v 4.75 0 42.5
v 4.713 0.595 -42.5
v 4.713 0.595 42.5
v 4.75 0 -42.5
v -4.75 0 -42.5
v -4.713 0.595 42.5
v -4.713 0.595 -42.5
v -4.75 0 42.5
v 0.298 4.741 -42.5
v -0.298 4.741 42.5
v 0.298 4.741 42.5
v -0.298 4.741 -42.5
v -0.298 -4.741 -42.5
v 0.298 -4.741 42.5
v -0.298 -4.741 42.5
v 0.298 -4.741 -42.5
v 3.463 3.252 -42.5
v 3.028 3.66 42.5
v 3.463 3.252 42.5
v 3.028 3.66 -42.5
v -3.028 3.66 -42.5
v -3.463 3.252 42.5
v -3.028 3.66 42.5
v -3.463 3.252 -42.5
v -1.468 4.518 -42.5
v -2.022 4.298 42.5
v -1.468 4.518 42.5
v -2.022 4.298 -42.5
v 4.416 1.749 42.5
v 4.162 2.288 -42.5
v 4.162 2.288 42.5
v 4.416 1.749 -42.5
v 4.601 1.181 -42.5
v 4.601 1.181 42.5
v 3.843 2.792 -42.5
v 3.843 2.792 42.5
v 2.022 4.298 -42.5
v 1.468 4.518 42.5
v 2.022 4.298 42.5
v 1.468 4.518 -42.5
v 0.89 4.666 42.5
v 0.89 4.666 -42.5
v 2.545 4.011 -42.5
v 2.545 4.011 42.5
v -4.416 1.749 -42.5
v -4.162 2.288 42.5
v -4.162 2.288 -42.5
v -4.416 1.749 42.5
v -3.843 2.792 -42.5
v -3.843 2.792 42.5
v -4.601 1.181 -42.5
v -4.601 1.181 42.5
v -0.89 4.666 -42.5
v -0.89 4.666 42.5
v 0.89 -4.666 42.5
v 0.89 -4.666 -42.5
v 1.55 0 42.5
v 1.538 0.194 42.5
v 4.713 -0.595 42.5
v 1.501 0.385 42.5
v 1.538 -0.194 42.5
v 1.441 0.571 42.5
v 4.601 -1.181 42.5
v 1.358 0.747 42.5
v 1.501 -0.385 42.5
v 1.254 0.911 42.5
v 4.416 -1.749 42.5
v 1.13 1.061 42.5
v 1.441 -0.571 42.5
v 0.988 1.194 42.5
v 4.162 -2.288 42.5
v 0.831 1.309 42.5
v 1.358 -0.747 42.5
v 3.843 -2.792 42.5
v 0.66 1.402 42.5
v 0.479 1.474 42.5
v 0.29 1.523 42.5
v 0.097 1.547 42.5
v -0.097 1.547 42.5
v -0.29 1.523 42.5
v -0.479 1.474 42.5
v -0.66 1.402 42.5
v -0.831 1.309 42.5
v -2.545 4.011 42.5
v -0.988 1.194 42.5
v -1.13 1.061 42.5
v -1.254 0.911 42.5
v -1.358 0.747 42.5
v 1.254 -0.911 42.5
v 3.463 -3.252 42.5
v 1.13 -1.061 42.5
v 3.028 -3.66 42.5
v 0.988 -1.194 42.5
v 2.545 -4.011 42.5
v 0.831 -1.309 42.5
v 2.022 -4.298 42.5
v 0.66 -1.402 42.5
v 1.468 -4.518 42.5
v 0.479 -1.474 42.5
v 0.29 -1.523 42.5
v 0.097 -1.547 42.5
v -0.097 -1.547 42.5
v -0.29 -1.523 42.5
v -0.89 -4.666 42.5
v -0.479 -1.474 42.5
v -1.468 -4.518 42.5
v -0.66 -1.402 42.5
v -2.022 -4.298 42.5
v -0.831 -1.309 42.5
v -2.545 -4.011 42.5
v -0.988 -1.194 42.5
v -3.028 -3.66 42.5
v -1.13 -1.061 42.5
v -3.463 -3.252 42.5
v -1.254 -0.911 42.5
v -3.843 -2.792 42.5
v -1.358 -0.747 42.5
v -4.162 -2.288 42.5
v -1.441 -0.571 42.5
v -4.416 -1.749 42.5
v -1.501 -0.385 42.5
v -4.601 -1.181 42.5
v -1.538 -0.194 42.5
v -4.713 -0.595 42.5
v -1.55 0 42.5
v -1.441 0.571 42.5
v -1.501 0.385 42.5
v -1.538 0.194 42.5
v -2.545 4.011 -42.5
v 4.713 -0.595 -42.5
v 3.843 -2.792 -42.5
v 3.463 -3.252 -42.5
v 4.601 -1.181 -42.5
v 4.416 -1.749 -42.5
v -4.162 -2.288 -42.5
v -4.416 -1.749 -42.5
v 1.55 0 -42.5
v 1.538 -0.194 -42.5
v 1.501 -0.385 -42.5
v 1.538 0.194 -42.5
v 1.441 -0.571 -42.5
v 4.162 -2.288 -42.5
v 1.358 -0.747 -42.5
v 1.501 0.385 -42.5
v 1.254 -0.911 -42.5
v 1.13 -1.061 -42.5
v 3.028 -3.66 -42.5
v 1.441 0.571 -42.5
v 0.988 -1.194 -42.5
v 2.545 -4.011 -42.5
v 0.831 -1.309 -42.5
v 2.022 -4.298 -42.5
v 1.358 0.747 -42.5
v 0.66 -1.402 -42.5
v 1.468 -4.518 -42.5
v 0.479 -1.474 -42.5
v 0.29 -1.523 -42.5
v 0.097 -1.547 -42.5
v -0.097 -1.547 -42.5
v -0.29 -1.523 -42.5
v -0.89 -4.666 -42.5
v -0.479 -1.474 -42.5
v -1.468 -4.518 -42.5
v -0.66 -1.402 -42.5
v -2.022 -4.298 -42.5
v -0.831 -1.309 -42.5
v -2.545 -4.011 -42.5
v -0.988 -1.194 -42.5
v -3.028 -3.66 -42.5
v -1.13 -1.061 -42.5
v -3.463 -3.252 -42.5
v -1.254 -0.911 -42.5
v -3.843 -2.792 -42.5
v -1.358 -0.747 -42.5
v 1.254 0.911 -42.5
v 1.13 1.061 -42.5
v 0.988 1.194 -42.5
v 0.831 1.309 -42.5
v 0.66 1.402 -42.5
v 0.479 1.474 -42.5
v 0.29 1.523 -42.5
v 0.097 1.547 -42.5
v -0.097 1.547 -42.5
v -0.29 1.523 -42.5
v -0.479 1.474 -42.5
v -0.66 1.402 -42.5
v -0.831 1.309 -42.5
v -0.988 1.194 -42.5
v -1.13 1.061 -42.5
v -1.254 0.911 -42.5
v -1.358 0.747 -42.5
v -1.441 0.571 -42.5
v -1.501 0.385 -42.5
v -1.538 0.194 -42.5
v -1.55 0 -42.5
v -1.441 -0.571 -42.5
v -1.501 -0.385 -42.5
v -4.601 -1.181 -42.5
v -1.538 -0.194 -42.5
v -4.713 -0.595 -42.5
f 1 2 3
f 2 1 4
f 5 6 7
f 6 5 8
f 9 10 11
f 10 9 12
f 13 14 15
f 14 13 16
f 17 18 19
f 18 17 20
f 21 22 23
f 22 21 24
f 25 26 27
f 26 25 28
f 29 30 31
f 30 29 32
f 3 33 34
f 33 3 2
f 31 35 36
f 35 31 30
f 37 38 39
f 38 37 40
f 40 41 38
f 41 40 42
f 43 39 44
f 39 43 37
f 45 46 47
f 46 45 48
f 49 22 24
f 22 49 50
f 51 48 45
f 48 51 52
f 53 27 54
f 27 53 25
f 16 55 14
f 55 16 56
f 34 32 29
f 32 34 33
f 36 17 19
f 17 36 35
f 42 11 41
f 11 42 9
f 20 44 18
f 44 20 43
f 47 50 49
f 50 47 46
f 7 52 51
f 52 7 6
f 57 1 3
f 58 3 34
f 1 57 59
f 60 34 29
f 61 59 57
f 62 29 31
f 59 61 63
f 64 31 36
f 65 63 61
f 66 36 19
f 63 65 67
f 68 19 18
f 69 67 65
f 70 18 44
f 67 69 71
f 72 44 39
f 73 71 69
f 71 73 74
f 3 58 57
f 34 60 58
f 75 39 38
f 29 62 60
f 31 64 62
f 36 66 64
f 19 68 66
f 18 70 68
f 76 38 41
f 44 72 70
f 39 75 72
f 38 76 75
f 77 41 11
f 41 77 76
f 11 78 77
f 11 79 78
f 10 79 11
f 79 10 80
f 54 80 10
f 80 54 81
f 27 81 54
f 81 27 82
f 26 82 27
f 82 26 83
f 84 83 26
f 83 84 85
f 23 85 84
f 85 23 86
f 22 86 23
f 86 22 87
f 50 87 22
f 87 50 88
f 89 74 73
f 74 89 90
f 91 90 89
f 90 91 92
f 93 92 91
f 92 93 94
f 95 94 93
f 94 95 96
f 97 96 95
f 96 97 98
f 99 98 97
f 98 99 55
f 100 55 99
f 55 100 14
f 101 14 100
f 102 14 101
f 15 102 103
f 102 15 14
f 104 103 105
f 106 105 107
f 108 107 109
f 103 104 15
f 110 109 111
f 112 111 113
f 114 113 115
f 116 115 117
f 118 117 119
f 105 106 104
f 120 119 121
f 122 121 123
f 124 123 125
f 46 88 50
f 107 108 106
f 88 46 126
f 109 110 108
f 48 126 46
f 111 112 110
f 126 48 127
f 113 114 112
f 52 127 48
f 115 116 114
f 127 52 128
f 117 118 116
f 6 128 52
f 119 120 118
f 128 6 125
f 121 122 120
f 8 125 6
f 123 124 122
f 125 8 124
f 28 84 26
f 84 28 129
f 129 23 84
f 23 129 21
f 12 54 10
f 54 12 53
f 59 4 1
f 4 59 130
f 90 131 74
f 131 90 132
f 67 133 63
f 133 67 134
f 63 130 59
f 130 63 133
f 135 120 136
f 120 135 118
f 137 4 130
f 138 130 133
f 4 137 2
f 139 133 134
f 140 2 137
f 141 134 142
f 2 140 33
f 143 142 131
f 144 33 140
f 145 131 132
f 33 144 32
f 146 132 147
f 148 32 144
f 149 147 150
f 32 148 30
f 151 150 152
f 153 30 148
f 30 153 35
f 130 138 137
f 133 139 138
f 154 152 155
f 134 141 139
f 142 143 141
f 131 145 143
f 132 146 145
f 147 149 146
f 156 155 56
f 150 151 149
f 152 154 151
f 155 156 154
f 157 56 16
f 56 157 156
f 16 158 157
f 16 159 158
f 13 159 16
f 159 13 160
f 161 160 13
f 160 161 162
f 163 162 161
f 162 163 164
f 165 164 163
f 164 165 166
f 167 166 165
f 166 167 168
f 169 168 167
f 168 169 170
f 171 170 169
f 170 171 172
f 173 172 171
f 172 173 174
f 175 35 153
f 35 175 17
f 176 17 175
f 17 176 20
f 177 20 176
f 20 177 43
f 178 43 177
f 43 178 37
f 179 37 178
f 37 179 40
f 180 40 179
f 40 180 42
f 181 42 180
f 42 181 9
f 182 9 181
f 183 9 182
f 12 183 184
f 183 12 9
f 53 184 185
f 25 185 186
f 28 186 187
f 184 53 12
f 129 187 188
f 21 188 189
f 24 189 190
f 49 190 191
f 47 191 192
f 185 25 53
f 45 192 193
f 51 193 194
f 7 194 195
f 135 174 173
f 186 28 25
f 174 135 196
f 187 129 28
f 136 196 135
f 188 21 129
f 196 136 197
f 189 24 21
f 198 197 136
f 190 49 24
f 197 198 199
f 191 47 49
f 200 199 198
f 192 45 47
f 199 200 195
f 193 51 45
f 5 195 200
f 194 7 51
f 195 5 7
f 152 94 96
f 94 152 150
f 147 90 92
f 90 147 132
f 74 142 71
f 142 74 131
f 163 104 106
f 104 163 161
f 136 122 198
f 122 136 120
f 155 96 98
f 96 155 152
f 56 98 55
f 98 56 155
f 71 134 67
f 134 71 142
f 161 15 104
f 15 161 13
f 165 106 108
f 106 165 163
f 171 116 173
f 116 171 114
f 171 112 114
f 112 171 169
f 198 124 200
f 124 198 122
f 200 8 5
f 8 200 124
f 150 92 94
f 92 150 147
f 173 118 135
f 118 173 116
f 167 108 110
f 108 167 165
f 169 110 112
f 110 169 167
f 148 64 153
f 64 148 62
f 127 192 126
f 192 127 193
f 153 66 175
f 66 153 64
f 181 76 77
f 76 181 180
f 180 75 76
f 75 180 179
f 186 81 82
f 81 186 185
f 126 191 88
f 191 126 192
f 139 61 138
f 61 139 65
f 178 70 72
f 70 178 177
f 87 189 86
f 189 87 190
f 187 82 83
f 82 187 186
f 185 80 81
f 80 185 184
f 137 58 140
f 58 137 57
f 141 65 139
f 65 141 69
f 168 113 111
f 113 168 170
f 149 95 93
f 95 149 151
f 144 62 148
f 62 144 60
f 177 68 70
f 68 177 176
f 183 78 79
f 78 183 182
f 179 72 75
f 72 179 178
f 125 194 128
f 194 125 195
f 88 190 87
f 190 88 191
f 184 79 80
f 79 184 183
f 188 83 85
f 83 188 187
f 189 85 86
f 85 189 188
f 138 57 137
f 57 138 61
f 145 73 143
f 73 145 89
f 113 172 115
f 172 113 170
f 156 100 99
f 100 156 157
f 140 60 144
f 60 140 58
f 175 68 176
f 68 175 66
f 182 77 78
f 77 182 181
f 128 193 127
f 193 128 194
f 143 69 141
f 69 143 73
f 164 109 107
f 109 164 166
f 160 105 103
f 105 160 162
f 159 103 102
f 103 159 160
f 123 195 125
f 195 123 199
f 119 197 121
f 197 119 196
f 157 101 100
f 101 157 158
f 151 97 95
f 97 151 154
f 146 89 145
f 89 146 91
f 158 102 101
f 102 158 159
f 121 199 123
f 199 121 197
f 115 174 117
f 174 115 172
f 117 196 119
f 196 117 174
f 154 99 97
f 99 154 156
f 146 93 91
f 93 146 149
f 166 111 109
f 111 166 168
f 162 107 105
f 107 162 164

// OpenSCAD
$fn = 50;


difference() {
	union() {
		translate(v = [0, 0, -42.5000000000]) {
			cylinder(h = 85, r = 4.7500000000);
		}
	}
	union() {
		translate(v = [0, 0, -100.0000000000]) {
			cylinder(h = 200, r = 1.5500000000);
		}
	}
}
